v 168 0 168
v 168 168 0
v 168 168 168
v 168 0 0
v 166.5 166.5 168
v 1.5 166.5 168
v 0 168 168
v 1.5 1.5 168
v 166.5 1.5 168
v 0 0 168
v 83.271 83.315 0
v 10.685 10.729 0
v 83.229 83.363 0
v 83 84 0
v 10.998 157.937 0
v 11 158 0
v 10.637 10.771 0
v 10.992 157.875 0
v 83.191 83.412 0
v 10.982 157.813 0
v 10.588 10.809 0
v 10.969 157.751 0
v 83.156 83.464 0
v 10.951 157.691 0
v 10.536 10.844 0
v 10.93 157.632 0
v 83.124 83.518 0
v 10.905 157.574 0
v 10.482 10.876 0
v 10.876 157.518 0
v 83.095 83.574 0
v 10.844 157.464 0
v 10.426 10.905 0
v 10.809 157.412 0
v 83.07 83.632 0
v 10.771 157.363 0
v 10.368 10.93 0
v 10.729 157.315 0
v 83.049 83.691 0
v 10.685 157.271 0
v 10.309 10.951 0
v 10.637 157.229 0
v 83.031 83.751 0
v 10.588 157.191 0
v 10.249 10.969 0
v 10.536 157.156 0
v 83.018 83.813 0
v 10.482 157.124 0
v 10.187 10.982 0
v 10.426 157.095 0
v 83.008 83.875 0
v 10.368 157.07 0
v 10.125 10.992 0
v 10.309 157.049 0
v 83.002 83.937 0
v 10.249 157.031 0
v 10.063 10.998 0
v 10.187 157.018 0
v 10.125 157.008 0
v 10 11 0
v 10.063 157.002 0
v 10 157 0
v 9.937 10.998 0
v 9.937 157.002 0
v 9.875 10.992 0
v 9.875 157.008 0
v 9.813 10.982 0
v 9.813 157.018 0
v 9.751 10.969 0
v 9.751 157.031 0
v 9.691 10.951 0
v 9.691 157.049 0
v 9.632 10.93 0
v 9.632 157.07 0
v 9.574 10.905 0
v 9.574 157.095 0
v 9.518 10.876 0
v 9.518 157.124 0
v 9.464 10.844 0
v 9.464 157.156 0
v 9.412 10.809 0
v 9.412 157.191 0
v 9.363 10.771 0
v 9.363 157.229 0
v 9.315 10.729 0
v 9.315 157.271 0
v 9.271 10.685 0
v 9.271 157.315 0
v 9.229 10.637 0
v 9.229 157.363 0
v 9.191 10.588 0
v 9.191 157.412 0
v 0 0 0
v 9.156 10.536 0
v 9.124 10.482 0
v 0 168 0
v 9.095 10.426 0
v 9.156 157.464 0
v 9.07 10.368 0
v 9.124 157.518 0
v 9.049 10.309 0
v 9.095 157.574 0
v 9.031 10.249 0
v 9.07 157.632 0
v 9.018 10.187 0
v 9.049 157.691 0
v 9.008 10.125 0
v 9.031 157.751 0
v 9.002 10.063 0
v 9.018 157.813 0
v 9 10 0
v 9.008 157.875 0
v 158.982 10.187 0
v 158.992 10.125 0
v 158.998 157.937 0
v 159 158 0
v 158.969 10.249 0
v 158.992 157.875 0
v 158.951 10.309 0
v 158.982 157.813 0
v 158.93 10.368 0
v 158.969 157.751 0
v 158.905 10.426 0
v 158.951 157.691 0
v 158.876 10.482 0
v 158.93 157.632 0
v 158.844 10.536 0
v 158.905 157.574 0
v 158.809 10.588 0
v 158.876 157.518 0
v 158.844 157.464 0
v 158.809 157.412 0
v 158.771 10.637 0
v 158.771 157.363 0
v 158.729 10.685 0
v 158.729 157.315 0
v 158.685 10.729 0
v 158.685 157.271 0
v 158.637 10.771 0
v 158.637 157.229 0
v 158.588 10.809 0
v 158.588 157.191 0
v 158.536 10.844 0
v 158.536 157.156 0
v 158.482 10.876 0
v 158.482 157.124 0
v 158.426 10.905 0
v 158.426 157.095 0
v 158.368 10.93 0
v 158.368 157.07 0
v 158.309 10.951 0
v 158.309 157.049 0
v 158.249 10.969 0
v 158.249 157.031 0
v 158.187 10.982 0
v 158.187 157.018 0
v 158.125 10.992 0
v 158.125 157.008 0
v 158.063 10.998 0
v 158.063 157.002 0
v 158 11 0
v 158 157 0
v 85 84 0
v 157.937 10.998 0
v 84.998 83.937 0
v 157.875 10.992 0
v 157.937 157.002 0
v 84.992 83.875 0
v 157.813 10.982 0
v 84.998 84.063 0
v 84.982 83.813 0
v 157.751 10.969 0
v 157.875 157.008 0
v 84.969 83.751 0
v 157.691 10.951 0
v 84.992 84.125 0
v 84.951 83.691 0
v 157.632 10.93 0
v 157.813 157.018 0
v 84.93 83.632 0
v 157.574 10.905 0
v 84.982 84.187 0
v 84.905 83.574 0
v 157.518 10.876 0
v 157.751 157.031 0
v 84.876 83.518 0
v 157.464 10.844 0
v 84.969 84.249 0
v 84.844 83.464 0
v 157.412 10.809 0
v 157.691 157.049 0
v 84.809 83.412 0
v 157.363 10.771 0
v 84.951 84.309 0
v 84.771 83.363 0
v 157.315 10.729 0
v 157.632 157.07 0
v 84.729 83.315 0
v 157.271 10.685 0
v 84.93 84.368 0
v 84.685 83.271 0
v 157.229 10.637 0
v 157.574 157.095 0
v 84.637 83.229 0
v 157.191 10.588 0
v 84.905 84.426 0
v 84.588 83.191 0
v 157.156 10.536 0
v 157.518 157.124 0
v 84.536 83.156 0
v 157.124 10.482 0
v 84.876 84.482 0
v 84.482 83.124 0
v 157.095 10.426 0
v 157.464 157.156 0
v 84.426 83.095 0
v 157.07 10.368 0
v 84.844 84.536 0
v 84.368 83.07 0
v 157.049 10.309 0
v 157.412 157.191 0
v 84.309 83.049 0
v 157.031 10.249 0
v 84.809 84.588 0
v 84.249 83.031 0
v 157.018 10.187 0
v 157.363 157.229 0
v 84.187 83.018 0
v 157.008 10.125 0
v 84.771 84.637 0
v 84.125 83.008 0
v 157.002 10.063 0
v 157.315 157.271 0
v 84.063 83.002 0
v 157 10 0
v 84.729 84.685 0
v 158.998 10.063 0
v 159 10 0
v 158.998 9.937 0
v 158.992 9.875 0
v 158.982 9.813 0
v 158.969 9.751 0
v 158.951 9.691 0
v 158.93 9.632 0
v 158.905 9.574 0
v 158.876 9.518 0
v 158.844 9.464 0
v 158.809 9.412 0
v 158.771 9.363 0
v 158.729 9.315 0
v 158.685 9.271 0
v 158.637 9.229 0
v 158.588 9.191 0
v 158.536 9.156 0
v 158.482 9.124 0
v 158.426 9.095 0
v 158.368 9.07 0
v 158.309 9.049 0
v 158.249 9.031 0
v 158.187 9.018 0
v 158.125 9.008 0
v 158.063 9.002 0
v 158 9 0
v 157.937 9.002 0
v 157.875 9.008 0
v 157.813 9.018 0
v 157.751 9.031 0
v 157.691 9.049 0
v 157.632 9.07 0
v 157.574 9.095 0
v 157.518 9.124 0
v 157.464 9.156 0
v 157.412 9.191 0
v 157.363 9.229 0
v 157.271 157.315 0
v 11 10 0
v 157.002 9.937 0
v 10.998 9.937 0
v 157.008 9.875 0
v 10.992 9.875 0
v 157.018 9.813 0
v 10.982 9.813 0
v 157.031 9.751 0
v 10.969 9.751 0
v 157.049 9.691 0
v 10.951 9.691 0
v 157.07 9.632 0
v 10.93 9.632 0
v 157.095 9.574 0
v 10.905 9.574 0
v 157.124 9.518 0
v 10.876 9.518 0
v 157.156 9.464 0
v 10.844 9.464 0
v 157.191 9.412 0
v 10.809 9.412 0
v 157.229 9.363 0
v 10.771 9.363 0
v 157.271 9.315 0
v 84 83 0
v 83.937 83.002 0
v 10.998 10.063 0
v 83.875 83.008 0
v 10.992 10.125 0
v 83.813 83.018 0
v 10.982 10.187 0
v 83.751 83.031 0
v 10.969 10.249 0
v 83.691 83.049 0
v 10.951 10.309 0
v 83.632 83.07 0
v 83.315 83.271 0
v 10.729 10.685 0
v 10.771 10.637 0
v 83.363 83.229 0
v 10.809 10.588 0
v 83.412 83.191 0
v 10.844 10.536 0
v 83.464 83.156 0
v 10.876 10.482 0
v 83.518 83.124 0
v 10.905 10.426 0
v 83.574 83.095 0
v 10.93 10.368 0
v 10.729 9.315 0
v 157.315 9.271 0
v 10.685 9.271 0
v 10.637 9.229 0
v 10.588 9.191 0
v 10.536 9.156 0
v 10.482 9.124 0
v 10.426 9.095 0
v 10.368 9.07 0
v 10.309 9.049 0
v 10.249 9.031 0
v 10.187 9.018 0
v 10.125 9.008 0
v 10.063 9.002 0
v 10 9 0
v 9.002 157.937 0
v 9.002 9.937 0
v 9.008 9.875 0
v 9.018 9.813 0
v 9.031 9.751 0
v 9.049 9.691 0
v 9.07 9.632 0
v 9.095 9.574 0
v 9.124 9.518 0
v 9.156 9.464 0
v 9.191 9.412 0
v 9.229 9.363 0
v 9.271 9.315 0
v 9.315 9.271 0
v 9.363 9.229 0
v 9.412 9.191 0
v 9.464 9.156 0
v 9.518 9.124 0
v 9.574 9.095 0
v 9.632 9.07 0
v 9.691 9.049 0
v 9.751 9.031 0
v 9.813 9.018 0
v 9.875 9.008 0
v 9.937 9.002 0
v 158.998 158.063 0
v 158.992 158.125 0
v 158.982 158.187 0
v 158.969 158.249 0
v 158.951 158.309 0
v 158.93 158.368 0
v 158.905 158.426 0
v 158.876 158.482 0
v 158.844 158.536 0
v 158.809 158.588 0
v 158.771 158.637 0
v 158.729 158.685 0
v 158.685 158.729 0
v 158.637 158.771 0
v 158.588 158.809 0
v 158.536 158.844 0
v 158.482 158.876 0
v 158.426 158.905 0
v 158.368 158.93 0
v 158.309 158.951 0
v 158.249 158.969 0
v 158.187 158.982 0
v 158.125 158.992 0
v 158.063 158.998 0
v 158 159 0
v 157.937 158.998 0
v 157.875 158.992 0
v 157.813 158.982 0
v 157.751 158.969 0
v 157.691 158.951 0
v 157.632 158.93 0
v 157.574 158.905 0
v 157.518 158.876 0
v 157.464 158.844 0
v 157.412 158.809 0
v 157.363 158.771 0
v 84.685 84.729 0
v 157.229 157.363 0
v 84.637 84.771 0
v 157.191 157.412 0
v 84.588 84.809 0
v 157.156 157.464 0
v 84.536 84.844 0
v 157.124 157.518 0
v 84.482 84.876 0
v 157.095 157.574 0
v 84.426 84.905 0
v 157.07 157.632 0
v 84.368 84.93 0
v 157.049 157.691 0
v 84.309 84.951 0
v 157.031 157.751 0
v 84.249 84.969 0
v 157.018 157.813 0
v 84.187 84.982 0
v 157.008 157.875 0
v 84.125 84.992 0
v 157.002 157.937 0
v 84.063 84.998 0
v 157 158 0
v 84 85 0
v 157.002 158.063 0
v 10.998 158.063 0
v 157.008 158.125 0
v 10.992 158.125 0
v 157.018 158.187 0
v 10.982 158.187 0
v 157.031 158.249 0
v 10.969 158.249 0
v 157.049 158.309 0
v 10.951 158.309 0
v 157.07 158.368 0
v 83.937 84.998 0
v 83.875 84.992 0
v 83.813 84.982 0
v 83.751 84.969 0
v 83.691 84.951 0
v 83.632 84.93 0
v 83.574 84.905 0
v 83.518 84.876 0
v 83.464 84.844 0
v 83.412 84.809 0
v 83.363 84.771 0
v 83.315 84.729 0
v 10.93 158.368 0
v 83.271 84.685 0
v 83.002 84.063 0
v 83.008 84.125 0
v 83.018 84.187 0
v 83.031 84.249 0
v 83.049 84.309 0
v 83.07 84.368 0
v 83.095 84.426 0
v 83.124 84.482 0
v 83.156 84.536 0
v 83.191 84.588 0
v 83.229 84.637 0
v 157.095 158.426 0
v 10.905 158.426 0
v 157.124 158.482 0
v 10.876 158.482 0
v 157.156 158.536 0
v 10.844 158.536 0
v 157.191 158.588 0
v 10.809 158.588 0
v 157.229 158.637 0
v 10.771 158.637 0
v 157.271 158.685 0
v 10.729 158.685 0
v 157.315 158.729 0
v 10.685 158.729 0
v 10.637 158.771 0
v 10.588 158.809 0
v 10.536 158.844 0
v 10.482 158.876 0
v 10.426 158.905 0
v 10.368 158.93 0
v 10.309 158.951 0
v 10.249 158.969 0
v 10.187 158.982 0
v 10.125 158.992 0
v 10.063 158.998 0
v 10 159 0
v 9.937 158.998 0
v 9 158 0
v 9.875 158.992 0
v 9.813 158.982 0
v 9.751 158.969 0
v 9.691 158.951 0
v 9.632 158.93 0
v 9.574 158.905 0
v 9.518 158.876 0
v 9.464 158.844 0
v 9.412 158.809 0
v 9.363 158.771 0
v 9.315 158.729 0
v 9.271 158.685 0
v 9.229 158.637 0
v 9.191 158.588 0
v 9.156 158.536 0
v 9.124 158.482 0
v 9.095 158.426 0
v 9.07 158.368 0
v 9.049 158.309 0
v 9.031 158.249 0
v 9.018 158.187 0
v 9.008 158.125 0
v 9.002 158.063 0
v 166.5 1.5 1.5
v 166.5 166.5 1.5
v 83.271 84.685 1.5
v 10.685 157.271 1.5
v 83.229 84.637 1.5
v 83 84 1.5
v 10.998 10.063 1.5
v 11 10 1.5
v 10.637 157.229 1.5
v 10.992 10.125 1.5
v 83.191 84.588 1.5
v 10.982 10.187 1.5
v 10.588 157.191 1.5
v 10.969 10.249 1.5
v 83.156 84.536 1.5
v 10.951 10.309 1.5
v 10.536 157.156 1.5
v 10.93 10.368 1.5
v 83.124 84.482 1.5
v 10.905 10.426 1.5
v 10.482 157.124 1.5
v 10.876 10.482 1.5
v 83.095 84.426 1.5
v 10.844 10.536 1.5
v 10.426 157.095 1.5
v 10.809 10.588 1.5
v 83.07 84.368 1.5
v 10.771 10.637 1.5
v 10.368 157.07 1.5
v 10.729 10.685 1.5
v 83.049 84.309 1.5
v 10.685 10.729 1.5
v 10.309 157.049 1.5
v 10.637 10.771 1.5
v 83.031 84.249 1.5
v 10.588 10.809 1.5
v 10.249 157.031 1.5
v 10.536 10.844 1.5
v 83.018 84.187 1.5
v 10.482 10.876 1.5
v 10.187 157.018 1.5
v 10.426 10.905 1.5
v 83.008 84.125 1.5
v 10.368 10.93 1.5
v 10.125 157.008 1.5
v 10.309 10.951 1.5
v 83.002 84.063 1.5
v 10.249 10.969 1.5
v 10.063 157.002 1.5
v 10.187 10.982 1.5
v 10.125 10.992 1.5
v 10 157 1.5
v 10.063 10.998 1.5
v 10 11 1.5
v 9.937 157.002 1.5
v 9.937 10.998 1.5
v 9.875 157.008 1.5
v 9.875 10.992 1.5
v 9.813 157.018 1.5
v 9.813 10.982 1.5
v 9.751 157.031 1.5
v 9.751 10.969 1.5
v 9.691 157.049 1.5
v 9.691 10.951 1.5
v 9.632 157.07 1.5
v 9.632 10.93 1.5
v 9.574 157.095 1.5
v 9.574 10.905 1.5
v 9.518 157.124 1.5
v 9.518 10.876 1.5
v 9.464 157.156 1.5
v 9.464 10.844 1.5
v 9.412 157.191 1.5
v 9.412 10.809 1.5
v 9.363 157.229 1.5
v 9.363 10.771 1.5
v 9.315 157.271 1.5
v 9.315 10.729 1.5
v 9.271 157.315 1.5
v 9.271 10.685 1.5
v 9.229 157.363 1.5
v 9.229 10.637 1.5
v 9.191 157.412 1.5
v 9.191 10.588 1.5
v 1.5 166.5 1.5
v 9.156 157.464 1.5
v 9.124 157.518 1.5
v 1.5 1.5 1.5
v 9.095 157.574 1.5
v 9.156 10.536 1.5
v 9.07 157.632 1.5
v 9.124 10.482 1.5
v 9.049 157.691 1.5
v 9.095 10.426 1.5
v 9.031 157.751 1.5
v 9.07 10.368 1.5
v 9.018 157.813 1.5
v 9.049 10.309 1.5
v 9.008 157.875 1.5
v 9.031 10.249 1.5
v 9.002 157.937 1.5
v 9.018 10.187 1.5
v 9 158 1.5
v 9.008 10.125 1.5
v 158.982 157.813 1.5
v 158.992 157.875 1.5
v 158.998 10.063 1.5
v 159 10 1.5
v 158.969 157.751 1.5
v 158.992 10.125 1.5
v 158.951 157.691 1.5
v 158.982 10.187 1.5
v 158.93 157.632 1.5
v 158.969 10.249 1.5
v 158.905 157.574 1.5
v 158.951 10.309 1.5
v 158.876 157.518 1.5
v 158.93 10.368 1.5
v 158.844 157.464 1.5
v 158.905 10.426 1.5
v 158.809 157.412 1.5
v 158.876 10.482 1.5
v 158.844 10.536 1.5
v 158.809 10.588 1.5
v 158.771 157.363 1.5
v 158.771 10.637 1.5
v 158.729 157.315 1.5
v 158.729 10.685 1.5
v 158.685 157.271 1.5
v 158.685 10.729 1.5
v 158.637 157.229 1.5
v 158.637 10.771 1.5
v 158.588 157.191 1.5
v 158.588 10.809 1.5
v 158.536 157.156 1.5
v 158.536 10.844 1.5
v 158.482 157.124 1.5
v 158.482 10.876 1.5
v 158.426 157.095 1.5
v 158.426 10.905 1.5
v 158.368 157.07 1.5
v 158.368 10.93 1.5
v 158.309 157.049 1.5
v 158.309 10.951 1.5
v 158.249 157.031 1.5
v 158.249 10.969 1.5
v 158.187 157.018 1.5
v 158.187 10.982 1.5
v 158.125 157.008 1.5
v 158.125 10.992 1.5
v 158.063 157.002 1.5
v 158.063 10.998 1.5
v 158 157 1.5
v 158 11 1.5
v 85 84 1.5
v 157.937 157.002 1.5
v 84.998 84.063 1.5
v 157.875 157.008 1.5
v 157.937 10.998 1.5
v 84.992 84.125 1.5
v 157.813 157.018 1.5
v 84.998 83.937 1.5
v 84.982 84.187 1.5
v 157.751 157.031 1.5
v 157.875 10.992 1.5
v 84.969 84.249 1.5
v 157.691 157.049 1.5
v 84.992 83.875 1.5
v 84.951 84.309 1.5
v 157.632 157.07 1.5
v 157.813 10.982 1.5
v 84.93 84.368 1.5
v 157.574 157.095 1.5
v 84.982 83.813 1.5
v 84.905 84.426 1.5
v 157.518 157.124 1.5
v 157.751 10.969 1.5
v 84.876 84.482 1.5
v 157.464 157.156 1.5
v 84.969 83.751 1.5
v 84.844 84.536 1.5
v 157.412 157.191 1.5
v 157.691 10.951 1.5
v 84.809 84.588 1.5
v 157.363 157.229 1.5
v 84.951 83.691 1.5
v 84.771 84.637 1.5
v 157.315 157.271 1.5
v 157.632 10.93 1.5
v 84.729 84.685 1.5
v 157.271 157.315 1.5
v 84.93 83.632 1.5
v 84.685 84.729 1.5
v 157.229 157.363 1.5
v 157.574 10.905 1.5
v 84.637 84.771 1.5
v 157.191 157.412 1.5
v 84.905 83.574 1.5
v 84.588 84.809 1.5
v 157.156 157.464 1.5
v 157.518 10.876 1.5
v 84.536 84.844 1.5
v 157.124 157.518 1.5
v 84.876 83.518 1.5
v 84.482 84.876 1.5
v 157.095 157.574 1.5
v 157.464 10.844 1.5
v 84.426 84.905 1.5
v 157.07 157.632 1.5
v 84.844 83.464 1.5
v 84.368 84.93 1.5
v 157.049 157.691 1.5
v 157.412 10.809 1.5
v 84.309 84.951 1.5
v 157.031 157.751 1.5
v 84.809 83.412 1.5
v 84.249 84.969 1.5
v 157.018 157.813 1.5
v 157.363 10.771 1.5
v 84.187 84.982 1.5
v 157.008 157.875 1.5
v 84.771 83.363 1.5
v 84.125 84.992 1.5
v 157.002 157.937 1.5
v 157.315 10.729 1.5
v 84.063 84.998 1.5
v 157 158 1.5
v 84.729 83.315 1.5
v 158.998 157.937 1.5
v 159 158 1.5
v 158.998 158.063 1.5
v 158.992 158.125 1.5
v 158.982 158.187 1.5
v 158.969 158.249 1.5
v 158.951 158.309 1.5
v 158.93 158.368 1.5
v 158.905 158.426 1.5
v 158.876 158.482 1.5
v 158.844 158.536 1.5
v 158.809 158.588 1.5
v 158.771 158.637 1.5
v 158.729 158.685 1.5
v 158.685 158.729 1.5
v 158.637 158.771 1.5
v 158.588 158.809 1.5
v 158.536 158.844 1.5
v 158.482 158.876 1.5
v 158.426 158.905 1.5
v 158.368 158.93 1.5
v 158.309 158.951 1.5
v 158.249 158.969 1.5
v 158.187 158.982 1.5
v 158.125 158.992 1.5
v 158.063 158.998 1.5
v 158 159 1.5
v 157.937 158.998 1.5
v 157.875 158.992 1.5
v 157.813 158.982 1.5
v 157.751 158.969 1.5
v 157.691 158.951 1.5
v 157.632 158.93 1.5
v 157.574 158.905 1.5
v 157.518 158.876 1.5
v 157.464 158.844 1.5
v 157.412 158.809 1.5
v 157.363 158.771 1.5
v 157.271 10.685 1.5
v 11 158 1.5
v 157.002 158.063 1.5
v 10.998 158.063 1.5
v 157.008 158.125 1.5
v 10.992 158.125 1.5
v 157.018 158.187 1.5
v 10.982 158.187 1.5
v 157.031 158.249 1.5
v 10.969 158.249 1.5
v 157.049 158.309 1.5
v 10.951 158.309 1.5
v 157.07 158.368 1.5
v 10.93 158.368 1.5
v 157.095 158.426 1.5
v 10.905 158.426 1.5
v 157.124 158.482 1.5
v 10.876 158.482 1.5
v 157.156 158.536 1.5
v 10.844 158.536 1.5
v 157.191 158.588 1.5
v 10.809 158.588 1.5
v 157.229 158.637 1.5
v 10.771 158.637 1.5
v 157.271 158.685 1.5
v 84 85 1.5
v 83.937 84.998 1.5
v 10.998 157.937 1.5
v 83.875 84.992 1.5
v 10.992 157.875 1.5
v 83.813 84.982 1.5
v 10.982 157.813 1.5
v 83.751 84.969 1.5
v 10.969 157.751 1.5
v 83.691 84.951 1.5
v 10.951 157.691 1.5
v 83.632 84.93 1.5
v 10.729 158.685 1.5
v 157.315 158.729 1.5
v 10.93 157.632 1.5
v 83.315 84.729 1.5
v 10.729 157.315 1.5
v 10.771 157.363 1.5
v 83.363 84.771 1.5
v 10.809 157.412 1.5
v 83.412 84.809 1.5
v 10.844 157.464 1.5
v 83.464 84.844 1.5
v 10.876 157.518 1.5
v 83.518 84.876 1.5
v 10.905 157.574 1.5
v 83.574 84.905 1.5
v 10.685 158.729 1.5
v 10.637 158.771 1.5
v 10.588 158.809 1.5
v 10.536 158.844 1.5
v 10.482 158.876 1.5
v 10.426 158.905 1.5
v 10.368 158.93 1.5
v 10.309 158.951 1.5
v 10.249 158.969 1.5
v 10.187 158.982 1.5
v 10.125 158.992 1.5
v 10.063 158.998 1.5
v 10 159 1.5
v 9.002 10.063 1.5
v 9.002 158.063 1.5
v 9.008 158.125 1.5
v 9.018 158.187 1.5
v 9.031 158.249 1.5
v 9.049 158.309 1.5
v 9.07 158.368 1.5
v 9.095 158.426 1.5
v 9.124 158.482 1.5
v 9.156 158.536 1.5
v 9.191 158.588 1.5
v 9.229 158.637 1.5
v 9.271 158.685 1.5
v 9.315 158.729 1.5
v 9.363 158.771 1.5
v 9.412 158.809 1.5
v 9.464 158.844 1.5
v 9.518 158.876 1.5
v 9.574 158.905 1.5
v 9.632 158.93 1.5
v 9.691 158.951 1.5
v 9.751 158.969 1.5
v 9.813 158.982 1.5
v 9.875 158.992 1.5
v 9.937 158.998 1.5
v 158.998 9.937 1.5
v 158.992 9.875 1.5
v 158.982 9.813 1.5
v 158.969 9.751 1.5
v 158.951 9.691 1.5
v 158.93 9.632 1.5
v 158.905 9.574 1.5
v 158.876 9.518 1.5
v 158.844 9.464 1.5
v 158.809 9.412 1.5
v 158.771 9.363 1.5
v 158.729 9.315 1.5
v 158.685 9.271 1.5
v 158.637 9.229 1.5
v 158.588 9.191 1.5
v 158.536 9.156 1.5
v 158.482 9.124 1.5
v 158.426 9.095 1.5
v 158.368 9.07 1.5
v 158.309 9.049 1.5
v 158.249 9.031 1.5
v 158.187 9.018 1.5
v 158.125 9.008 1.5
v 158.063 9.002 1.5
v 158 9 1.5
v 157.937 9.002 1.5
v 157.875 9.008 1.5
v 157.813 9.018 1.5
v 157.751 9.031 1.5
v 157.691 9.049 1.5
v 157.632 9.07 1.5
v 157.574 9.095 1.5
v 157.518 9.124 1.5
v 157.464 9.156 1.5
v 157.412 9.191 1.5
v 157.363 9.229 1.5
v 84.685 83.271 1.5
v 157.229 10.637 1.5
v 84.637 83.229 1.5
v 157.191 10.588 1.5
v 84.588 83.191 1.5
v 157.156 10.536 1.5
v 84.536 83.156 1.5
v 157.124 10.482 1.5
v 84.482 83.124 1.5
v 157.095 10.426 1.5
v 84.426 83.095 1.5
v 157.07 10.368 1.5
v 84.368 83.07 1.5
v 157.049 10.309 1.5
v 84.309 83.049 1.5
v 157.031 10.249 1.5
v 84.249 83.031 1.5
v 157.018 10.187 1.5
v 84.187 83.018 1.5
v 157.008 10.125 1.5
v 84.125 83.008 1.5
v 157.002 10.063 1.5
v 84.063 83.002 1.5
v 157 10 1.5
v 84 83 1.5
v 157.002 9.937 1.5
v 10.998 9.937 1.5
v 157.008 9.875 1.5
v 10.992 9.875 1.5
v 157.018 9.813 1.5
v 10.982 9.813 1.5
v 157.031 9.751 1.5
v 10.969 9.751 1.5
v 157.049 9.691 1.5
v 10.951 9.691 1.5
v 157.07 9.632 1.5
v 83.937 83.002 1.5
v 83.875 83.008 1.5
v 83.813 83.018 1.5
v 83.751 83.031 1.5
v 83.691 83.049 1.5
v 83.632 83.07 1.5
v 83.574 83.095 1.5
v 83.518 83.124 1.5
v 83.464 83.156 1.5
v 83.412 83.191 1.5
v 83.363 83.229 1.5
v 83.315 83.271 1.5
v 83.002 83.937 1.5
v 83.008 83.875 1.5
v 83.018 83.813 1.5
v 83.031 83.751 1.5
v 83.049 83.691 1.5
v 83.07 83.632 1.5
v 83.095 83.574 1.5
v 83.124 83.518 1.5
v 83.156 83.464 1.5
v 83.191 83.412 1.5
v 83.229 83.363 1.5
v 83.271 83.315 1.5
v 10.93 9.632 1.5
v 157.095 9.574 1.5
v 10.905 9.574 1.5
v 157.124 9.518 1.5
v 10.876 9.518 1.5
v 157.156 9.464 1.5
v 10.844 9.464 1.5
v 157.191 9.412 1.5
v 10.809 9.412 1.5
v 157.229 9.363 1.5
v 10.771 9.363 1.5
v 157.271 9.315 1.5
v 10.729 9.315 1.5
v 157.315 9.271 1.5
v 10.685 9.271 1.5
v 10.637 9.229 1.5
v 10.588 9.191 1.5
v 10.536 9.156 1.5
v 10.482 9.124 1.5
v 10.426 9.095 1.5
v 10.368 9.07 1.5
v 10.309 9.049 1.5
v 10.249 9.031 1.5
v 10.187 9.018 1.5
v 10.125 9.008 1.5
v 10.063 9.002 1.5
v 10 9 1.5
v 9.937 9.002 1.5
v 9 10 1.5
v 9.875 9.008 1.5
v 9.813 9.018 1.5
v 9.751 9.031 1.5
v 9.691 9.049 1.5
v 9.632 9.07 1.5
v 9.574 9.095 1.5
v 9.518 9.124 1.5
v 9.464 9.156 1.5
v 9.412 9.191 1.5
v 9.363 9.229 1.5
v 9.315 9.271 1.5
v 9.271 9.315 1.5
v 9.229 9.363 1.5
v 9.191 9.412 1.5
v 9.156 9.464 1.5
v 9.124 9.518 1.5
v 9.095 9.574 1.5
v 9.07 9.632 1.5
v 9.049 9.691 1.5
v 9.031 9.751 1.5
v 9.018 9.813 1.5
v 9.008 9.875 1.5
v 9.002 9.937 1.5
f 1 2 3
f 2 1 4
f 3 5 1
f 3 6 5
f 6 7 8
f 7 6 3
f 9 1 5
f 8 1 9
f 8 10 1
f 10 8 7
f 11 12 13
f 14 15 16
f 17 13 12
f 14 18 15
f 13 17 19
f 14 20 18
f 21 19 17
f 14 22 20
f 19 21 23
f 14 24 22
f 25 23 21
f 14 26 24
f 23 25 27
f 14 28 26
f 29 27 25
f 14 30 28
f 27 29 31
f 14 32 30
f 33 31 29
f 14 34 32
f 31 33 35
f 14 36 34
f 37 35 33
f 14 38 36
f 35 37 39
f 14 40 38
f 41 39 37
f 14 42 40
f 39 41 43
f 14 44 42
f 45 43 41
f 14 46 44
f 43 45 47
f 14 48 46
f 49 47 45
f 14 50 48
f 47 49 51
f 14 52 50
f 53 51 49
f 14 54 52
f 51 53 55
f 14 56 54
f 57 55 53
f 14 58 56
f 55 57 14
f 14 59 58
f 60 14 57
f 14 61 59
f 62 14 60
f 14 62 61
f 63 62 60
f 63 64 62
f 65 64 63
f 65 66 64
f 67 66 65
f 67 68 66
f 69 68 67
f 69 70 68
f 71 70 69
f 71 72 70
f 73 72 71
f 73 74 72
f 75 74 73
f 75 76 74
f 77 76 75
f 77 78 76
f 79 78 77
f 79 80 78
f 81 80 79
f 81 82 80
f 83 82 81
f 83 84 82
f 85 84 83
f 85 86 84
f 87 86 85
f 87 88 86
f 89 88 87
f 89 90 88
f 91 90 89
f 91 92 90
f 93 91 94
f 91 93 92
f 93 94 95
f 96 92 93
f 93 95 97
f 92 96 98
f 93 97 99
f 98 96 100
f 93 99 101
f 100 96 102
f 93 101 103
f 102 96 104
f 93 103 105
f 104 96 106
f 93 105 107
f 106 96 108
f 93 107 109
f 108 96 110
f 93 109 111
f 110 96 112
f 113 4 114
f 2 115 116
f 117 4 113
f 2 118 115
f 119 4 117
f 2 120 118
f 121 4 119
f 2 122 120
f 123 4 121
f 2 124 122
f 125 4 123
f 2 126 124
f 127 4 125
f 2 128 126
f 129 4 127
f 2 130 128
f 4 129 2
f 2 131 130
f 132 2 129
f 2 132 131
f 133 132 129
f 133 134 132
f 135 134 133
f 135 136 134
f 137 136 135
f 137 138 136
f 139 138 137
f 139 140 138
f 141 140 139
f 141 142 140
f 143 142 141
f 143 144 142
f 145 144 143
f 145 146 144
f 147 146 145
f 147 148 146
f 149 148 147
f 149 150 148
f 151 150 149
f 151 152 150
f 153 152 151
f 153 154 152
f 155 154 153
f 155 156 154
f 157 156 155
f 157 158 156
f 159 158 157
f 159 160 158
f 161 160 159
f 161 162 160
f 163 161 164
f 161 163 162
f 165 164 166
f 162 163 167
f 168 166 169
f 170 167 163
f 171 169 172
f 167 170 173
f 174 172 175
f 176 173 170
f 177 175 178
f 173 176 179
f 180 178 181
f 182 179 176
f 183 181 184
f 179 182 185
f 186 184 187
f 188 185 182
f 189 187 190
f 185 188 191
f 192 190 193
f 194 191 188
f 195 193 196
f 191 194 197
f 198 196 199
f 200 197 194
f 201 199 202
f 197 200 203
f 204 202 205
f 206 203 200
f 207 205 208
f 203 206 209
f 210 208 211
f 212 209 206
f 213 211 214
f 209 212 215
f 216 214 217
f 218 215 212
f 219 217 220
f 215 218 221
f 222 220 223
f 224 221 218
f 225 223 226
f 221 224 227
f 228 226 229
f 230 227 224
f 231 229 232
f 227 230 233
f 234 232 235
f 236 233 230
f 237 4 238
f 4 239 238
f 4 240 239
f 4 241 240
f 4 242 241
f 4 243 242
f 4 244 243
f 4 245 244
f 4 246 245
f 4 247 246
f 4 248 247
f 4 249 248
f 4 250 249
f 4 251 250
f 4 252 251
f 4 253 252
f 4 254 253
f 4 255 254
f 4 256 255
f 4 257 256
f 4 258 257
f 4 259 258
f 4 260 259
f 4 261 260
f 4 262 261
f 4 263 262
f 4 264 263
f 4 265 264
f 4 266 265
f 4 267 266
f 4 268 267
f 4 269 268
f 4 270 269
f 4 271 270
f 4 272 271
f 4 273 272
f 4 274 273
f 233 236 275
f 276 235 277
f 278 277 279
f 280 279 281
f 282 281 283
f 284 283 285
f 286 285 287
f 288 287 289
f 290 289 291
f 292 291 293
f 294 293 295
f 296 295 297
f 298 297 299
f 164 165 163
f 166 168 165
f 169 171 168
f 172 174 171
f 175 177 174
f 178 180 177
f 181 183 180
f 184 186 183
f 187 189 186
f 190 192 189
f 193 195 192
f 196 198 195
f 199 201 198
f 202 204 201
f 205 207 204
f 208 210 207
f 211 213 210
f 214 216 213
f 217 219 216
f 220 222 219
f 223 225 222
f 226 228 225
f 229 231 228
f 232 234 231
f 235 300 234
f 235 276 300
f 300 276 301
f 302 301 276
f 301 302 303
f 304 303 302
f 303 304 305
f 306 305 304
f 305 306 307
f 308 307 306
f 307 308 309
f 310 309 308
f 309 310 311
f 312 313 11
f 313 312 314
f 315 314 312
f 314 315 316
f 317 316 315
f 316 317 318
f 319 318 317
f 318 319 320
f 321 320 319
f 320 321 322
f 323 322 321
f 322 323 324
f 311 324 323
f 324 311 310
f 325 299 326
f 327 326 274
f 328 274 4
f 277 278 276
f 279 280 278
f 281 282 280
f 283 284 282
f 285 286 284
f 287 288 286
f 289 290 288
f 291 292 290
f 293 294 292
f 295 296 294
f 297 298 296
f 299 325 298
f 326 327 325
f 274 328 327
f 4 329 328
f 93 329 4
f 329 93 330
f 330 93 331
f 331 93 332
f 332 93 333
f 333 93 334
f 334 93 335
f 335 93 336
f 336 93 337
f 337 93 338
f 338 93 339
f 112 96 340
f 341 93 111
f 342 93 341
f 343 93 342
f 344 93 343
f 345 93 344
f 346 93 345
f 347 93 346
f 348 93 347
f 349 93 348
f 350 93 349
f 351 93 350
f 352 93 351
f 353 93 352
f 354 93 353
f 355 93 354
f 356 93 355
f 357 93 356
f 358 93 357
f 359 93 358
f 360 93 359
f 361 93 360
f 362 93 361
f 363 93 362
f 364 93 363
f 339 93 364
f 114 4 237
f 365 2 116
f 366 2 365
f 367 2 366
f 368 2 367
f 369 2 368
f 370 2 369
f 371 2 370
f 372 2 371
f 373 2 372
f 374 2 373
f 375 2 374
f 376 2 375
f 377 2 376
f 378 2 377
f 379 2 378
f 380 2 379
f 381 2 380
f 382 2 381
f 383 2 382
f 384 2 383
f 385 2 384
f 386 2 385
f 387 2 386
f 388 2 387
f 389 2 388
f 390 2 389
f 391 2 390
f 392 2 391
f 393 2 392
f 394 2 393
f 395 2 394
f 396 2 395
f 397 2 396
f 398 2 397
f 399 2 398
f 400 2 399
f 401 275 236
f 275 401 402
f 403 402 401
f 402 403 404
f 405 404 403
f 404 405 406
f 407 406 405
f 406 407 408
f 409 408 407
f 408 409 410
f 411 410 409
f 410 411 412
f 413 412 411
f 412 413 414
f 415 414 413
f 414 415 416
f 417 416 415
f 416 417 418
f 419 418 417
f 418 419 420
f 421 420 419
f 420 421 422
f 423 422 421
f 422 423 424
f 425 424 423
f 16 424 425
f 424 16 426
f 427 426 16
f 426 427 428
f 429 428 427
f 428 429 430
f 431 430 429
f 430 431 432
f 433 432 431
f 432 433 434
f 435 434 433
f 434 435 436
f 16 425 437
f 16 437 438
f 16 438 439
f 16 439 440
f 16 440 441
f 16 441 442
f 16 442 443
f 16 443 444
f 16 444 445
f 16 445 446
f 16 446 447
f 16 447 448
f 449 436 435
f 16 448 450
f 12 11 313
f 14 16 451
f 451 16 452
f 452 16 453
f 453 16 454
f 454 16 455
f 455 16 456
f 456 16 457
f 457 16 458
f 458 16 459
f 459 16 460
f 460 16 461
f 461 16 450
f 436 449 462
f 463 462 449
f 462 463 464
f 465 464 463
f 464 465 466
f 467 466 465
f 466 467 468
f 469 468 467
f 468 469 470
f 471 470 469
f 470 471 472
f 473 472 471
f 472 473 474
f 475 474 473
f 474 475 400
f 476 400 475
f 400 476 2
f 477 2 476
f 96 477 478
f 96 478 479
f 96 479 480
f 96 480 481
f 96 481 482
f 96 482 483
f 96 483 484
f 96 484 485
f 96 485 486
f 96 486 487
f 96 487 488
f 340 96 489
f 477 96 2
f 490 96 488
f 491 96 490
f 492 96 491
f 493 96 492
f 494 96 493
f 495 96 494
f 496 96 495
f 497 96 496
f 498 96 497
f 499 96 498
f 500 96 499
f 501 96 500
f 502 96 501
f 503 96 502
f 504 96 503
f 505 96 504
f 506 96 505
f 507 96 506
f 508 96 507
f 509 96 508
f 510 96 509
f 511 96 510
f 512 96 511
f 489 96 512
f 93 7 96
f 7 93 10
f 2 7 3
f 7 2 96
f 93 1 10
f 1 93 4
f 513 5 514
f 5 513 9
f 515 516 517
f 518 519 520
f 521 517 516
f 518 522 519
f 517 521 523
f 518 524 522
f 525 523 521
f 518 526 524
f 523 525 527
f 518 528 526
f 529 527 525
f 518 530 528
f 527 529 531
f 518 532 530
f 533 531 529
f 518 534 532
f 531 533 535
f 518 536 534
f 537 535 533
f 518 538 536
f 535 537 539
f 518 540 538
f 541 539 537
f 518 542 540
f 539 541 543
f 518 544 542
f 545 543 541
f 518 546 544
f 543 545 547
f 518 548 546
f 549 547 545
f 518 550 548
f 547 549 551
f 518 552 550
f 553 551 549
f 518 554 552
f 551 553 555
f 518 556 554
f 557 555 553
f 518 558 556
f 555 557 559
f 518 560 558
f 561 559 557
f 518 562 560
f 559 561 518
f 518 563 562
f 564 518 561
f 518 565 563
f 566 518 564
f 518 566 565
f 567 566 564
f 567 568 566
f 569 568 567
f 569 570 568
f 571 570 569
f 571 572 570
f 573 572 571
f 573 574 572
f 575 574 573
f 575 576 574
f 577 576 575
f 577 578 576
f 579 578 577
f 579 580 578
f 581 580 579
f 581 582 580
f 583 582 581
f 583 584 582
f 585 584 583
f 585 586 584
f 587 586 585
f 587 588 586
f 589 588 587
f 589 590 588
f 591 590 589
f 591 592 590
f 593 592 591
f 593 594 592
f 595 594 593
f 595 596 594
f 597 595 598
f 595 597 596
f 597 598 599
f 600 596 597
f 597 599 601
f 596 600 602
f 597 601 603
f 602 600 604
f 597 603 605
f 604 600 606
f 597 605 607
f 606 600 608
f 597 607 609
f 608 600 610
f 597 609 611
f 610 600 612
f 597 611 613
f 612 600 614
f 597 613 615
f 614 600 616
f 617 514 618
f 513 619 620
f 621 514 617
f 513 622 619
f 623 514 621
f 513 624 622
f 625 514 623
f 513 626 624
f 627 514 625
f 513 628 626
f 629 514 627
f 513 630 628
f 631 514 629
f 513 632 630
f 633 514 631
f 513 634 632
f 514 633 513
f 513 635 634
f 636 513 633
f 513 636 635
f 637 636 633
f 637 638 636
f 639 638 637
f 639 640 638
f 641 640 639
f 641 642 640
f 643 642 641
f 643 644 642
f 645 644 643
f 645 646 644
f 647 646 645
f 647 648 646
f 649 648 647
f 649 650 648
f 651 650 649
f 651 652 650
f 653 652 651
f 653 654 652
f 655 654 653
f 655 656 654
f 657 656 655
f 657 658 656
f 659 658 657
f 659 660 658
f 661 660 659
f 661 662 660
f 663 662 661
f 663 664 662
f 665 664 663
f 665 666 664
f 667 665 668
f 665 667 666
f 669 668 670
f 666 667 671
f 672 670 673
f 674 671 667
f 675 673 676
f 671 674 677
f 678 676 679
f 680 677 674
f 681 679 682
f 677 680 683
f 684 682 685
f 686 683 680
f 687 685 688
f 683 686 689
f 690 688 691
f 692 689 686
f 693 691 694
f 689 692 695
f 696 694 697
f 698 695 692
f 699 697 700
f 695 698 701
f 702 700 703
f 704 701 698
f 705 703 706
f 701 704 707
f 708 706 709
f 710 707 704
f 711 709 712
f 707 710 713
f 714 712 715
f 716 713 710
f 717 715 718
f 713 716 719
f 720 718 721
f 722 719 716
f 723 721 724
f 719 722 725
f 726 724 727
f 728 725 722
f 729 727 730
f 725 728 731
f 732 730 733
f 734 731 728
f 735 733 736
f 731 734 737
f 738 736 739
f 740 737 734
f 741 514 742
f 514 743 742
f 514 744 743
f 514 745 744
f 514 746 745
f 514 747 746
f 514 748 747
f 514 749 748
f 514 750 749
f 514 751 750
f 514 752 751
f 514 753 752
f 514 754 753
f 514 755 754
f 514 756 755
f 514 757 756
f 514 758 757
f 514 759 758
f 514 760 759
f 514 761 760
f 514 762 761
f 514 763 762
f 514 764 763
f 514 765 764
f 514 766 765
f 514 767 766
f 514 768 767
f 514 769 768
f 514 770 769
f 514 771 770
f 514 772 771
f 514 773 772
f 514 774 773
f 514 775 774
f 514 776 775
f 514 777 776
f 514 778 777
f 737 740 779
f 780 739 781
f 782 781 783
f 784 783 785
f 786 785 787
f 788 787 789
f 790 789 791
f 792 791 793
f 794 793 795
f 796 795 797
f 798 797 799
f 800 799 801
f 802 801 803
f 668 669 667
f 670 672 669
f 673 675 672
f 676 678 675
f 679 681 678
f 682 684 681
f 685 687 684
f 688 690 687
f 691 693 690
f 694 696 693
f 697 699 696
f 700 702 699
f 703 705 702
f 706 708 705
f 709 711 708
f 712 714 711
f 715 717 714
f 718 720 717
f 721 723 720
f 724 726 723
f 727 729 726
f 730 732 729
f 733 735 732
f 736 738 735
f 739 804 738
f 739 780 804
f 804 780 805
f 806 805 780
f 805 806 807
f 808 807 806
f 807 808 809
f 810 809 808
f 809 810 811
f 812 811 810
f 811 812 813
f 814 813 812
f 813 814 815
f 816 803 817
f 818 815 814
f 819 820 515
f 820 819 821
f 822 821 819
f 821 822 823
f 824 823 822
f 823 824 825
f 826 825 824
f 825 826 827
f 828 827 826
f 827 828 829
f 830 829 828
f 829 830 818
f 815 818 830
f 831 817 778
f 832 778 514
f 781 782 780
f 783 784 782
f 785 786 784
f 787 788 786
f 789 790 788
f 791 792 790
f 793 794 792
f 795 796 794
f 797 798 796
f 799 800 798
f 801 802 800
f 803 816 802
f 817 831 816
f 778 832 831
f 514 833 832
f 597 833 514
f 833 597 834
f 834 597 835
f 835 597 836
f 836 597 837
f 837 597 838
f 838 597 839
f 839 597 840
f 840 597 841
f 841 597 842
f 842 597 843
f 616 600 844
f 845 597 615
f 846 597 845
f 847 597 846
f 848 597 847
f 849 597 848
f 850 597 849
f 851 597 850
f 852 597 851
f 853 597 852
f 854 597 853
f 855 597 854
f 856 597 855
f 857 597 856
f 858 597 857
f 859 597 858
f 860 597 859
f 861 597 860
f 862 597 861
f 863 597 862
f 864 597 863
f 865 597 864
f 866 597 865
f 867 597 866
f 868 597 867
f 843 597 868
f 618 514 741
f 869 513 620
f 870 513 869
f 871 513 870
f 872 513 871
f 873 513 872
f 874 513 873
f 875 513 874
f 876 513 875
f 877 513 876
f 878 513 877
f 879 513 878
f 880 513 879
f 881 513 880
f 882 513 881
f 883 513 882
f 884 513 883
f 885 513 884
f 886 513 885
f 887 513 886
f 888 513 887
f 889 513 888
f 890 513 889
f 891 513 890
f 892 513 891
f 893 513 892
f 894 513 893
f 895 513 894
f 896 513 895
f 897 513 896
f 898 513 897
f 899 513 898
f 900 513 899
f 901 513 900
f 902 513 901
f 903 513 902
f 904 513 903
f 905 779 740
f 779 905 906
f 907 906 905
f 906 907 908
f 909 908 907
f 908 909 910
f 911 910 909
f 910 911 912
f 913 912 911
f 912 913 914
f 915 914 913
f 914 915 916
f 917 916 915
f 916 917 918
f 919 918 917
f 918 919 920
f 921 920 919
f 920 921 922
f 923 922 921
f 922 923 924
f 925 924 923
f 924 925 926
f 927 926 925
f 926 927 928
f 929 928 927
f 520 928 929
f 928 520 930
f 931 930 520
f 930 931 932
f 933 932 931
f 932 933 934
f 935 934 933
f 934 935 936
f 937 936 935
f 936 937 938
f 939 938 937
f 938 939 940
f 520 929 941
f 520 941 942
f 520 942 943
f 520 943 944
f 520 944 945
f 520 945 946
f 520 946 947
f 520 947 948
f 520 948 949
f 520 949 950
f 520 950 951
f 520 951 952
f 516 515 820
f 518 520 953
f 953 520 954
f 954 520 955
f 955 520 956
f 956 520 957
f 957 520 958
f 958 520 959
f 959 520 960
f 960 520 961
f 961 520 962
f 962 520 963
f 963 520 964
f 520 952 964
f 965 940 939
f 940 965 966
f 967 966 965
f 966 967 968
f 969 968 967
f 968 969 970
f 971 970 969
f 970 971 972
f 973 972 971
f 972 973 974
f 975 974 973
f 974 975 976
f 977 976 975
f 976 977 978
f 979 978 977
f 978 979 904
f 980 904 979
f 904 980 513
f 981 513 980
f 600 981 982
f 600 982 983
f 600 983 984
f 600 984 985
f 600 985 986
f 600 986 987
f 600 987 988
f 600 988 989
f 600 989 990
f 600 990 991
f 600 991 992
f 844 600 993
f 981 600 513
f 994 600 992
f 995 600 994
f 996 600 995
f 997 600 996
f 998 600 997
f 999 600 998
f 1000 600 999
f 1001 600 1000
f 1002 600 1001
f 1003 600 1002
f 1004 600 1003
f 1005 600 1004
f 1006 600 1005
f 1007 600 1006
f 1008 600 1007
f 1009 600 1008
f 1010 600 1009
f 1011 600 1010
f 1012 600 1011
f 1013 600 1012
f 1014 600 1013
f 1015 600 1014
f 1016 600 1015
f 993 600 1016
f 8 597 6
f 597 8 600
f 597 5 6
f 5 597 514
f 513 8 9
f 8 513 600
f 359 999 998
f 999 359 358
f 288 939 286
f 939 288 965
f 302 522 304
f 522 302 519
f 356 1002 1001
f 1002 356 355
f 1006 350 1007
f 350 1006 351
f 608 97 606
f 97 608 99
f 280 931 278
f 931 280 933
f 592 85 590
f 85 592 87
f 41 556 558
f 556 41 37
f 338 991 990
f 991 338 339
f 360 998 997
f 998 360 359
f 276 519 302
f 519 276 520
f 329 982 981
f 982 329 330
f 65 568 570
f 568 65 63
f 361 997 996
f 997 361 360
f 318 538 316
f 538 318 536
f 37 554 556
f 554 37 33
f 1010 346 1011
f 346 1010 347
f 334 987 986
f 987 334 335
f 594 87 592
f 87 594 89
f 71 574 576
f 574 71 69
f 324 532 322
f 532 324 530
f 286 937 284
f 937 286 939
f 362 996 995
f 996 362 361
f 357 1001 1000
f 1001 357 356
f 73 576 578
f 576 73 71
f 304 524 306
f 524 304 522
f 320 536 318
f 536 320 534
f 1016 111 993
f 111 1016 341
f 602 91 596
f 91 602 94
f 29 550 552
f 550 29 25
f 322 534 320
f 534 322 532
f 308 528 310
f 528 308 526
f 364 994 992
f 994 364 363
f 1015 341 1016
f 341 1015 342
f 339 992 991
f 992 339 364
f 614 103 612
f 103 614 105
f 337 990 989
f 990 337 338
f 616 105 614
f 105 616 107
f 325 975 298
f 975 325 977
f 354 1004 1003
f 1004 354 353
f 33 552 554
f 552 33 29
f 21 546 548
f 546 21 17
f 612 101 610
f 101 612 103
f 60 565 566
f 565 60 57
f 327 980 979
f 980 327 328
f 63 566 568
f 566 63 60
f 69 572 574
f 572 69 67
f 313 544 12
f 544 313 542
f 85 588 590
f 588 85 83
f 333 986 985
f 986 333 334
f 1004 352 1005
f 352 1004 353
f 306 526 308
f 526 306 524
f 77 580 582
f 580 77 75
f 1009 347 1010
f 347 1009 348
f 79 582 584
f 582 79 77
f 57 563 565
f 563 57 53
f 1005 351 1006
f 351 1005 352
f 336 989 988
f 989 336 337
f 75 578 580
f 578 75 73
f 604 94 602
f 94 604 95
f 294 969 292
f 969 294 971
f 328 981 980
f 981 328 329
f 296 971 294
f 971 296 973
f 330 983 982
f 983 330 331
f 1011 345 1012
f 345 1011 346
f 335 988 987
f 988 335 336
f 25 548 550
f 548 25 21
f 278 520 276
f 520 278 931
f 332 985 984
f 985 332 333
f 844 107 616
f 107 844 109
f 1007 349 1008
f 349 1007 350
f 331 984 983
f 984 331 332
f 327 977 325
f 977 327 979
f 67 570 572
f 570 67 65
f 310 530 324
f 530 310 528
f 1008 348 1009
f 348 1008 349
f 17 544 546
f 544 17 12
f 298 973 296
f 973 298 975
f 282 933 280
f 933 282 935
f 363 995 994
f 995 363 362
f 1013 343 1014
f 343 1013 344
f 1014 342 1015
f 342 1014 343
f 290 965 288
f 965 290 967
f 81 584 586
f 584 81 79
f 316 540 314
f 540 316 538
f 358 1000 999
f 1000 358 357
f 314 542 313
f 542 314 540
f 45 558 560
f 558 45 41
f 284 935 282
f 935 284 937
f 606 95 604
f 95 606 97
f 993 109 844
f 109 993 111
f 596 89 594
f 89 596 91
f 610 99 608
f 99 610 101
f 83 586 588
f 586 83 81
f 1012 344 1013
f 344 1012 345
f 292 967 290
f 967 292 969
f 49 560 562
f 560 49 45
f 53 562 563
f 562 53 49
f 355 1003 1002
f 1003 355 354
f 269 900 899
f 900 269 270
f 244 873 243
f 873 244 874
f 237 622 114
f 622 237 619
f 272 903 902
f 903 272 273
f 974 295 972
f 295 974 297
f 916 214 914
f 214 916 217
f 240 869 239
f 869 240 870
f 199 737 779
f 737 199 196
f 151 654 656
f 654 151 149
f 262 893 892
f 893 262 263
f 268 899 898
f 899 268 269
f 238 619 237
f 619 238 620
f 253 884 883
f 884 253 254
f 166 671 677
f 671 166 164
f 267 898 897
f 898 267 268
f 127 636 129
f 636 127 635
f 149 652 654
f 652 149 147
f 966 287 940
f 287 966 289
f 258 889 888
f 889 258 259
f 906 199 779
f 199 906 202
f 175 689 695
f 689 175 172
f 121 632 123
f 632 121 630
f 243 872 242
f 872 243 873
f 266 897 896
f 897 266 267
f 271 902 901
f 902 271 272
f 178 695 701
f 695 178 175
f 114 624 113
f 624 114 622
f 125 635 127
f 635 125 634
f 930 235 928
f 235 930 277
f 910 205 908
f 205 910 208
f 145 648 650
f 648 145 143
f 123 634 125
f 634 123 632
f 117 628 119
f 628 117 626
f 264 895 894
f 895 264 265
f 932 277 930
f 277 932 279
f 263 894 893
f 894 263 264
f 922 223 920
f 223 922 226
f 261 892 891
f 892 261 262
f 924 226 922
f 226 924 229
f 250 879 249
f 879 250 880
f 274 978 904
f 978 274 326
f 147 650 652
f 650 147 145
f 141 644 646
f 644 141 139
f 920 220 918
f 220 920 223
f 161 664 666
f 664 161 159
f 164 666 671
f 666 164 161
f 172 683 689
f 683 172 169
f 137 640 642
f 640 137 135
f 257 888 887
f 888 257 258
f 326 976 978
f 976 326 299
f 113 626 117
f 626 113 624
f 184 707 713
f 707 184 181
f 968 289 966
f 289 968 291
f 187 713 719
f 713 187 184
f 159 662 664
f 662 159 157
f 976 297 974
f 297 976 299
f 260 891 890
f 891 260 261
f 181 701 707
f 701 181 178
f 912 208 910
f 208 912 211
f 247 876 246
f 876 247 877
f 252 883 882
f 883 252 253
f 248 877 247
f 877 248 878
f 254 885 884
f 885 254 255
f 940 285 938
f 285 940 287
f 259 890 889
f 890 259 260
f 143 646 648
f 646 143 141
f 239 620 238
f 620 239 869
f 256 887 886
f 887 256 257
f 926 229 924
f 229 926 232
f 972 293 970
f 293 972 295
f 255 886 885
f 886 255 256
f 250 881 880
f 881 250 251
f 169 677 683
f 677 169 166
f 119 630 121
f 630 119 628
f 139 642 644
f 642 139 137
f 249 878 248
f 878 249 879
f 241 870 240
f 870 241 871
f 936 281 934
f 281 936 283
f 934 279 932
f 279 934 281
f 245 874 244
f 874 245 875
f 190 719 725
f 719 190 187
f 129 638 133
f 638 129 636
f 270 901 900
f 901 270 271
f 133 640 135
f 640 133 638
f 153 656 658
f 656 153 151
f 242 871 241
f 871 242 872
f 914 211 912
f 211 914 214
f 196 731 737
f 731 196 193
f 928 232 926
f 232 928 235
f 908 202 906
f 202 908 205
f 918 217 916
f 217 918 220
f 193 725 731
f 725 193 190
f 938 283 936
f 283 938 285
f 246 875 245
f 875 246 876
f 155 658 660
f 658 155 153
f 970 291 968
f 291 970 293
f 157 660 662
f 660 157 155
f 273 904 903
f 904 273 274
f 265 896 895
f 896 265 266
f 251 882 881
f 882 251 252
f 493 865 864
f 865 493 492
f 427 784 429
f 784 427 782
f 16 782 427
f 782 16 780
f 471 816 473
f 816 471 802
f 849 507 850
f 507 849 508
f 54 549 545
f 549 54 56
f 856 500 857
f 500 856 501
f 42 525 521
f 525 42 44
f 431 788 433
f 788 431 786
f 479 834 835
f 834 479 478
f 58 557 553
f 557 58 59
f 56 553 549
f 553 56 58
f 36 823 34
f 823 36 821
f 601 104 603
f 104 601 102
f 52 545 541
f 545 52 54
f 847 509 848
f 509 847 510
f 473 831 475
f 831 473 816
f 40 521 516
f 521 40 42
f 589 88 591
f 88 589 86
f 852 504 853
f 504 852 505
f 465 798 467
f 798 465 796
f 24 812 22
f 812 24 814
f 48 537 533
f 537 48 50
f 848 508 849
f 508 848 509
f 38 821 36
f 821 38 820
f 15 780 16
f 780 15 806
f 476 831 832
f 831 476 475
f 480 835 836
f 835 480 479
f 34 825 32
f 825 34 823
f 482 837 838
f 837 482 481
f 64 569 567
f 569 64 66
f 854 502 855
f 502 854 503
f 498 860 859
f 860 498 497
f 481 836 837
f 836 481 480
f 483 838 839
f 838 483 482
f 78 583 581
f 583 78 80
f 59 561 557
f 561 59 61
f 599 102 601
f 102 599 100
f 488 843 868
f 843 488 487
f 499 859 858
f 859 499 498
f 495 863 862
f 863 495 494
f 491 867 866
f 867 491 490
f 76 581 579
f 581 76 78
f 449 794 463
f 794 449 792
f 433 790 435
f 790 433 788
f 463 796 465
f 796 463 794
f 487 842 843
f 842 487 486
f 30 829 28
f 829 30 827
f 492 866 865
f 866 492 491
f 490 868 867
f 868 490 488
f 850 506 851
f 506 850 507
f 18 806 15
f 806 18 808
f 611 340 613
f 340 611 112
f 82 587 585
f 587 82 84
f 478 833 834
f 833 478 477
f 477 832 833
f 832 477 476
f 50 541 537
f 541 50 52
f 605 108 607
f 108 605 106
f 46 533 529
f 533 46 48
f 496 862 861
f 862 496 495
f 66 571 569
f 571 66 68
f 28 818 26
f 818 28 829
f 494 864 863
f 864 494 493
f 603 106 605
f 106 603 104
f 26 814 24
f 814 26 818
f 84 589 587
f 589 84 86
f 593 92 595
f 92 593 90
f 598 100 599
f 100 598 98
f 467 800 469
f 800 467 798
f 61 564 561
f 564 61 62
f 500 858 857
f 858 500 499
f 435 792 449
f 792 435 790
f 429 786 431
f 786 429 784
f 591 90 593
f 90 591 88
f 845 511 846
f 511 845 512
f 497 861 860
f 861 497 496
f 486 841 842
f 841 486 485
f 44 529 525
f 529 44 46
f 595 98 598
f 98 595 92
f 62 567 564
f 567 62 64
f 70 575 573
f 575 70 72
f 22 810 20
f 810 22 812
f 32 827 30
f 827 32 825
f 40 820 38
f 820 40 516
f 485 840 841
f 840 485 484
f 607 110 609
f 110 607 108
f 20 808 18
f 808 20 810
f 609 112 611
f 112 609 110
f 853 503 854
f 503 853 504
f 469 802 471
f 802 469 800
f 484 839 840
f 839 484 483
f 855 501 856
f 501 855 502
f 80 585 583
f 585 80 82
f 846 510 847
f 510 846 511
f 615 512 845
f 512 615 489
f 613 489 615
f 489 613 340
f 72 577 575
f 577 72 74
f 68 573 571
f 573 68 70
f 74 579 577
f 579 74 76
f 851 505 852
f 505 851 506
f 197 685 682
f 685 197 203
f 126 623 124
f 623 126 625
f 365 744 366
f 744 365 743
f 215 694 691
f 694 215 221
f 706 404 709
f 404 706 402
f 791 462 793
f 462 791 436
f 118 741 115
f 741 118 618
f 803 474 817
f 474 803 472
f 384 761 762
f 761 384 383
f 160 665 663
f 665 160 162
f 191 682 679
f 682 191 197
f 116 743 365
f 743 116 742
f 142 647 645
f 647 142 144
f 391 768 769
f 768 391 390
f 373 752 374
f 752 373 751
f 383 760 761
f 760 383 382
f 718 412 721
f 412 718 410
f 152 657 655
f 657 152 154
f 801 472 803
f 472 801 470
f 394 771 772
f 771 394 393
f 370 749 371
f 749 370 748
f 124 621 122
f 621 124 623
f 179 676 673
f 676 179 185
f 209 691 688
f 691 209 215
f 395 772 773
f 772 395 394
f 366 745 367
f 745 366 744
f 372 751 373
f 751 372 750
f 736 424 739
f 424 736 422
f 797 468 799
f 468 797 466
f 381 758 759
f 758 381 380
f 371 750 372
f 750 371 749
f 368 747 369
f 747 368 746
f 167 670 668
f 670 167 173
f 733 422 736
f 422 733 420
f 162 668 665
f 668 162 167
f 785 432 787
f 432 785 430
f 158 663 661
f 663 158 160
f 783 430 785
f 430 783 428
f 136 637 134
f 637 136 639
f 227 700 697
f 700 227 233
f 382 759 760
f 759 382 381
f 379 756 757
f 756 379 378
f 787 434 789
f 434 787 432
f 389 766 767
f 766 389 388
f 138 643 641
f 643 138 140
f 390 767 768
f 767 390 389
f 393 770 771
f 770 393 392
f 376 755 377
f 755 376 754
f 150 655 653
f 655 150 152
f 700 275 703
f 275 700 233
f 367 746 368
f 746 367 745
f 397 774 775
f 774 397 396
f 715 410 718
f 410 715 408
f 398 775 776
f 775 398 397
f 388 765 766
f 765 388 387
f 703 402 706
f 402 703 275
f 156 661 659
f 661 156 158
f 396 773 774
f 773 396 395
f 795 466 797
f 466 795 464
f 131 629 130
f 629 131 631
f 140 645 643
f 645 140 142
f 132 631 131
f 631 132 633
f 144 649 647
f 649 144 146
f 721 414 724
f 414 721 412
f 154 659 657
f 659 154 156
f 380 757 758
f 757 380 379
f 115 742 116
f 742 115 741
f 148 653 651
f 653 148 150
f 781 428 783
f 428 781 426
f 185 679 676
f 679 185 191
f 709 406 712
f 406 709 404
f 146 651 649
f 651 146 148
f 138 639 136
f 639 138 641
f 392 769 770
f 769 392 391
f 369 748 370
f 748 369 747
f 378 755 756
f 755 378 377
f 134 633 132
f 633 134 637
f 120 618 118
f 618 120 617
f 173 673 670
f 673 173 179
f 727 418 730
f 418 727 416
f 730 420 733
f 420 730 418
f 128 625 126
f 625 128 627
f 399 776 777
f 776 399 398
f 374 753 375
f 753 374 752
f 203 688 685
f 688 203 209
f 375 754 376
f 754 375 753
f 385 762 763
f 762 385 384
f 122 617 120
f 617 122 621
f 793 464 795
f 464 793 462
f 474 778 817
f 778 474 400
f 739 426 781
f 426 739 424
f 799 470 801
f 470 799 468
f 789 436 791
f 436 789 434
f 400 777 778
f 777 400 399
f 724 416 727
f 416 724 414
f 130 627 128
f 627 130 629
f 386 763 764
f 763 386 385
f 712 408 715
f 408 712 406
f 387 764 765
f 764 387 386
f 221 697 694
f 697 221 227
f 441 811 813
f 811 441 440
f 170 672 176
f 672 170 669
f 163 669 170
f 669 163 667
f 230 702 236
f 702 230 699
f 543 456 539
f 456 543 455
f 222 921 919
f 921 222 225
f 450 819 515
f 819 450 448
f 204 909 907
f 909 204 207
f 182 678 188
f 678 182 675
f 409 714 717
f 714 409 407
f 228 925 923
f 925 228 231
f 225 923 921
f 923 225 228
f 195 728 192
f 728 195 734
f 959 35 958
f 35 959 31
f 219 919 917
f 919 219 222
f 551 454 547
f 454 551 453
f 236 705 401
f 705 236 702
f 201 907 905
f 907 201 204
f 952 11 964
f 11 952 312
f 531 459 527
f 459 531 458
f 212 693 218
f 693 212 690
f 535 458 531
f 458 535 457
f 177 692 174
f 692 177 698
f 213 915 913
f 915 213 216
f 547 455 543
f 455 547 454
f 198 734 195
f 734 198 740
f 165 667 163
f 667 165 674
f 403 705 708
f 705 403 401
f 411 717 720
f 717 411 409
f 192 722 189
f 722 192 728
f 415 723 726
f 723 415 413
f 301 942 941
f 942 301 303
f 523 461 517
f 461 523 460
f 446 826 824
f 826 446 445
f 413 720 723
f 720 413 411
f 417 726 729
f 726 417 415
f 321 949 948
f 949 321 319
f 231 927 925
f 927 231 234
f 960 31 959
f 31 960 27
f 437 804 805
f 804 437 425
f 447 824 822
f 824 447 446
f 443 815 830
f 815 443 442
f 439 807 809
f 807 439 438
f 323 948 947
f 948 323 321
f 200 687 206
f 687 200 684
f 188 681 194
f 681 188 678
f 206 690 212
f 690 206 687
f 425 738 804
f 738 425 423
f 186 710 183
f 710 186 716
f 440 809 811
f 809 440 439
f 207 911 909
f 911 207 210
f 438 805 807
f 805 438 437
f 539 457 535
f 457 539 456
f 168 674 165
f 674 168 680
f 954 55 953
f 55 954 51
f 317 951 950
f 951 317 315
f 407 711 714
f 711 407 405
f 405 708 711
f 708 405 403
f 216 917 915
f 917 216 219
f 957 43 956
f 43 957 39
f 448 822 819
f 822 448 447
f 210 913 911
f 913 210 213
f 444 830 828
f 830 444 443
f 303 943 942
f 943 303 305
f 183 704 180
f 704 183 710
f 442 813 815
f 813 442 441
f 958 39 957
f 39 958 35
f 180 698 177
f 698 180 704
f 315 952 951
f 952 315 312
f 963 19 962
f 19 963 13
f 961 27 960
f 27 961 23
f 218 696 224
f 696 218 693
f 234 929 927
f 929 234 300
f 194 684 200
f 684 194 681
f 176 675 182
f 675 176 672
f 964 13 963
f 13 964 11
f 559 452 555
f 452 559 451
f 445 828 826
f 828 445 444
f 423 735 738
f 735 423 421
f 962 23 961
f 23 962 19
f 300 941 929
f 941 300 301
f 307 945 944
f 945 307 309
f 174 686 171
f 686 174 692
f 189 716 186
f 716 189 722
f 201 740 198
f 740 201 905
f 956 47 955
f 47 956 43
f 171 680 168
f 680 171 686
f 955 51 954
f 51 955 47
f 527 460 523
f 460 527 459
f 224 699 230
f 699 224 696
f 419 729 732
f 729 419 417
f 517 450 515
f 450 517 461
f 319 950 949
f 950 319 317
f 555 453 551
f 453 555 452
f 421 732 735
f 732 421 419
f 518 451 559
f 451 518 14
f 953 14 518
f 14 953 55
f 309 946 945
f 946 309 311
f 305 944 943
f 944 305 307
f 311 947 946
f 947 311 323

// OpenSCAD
// Ender 2 Pro Modified bed heat cover. This is used to help heat cycles of PLA
// prints

// High quality settings
$fn = 100;

// Define variables for dimensions
box_width = 168.00; // width and height of the box
box_length = 168.00; // length and height of the box
box_height = 168.00; // height of the box
box_thickness = 1.50; // thickness of the box
hole_diameter = 2.00; // diameter of the holes

// Calculate hole positions (inset from edges by 10mm)
hole_inset = 10;

difference() {
  // Outer cube
  cube([box_width, box_length, box_height]);

  // Inner cube (hollow out the box)
  translate([box_thickness, box_thickness, box_thickness])
  cube([
    box_width - 2*box_thickness,
    box_length - 2*box_thickness,
    box_height - box_thickness
  ]);

  // Corner holes
  translate([hole_inset, hole_inset, 0])
  cylinder(h=box_thickness*2, d=hole_diameter, center=true);

  translate([box_width - hole_inset, hole_inset, 0])
  cylinder(h=box_thickness*2, d=hole_diameter, center=true);

  translate([hole_inset, box_length - hole_inset, 0])
  cylinder(h=box_thickness*2, d=hole_diameter, center=true);

  translate([box_width - hole_inset, box_length - hole_inset, 0])
  cylinder(h=box_thickness*2, d=hole_diameter, center=true);

  // Center hole
  translate([box_width/2, box_length/2, 0])
  cylinder(h=box_thickness*2, d=hole_diameter, center=true);
}
